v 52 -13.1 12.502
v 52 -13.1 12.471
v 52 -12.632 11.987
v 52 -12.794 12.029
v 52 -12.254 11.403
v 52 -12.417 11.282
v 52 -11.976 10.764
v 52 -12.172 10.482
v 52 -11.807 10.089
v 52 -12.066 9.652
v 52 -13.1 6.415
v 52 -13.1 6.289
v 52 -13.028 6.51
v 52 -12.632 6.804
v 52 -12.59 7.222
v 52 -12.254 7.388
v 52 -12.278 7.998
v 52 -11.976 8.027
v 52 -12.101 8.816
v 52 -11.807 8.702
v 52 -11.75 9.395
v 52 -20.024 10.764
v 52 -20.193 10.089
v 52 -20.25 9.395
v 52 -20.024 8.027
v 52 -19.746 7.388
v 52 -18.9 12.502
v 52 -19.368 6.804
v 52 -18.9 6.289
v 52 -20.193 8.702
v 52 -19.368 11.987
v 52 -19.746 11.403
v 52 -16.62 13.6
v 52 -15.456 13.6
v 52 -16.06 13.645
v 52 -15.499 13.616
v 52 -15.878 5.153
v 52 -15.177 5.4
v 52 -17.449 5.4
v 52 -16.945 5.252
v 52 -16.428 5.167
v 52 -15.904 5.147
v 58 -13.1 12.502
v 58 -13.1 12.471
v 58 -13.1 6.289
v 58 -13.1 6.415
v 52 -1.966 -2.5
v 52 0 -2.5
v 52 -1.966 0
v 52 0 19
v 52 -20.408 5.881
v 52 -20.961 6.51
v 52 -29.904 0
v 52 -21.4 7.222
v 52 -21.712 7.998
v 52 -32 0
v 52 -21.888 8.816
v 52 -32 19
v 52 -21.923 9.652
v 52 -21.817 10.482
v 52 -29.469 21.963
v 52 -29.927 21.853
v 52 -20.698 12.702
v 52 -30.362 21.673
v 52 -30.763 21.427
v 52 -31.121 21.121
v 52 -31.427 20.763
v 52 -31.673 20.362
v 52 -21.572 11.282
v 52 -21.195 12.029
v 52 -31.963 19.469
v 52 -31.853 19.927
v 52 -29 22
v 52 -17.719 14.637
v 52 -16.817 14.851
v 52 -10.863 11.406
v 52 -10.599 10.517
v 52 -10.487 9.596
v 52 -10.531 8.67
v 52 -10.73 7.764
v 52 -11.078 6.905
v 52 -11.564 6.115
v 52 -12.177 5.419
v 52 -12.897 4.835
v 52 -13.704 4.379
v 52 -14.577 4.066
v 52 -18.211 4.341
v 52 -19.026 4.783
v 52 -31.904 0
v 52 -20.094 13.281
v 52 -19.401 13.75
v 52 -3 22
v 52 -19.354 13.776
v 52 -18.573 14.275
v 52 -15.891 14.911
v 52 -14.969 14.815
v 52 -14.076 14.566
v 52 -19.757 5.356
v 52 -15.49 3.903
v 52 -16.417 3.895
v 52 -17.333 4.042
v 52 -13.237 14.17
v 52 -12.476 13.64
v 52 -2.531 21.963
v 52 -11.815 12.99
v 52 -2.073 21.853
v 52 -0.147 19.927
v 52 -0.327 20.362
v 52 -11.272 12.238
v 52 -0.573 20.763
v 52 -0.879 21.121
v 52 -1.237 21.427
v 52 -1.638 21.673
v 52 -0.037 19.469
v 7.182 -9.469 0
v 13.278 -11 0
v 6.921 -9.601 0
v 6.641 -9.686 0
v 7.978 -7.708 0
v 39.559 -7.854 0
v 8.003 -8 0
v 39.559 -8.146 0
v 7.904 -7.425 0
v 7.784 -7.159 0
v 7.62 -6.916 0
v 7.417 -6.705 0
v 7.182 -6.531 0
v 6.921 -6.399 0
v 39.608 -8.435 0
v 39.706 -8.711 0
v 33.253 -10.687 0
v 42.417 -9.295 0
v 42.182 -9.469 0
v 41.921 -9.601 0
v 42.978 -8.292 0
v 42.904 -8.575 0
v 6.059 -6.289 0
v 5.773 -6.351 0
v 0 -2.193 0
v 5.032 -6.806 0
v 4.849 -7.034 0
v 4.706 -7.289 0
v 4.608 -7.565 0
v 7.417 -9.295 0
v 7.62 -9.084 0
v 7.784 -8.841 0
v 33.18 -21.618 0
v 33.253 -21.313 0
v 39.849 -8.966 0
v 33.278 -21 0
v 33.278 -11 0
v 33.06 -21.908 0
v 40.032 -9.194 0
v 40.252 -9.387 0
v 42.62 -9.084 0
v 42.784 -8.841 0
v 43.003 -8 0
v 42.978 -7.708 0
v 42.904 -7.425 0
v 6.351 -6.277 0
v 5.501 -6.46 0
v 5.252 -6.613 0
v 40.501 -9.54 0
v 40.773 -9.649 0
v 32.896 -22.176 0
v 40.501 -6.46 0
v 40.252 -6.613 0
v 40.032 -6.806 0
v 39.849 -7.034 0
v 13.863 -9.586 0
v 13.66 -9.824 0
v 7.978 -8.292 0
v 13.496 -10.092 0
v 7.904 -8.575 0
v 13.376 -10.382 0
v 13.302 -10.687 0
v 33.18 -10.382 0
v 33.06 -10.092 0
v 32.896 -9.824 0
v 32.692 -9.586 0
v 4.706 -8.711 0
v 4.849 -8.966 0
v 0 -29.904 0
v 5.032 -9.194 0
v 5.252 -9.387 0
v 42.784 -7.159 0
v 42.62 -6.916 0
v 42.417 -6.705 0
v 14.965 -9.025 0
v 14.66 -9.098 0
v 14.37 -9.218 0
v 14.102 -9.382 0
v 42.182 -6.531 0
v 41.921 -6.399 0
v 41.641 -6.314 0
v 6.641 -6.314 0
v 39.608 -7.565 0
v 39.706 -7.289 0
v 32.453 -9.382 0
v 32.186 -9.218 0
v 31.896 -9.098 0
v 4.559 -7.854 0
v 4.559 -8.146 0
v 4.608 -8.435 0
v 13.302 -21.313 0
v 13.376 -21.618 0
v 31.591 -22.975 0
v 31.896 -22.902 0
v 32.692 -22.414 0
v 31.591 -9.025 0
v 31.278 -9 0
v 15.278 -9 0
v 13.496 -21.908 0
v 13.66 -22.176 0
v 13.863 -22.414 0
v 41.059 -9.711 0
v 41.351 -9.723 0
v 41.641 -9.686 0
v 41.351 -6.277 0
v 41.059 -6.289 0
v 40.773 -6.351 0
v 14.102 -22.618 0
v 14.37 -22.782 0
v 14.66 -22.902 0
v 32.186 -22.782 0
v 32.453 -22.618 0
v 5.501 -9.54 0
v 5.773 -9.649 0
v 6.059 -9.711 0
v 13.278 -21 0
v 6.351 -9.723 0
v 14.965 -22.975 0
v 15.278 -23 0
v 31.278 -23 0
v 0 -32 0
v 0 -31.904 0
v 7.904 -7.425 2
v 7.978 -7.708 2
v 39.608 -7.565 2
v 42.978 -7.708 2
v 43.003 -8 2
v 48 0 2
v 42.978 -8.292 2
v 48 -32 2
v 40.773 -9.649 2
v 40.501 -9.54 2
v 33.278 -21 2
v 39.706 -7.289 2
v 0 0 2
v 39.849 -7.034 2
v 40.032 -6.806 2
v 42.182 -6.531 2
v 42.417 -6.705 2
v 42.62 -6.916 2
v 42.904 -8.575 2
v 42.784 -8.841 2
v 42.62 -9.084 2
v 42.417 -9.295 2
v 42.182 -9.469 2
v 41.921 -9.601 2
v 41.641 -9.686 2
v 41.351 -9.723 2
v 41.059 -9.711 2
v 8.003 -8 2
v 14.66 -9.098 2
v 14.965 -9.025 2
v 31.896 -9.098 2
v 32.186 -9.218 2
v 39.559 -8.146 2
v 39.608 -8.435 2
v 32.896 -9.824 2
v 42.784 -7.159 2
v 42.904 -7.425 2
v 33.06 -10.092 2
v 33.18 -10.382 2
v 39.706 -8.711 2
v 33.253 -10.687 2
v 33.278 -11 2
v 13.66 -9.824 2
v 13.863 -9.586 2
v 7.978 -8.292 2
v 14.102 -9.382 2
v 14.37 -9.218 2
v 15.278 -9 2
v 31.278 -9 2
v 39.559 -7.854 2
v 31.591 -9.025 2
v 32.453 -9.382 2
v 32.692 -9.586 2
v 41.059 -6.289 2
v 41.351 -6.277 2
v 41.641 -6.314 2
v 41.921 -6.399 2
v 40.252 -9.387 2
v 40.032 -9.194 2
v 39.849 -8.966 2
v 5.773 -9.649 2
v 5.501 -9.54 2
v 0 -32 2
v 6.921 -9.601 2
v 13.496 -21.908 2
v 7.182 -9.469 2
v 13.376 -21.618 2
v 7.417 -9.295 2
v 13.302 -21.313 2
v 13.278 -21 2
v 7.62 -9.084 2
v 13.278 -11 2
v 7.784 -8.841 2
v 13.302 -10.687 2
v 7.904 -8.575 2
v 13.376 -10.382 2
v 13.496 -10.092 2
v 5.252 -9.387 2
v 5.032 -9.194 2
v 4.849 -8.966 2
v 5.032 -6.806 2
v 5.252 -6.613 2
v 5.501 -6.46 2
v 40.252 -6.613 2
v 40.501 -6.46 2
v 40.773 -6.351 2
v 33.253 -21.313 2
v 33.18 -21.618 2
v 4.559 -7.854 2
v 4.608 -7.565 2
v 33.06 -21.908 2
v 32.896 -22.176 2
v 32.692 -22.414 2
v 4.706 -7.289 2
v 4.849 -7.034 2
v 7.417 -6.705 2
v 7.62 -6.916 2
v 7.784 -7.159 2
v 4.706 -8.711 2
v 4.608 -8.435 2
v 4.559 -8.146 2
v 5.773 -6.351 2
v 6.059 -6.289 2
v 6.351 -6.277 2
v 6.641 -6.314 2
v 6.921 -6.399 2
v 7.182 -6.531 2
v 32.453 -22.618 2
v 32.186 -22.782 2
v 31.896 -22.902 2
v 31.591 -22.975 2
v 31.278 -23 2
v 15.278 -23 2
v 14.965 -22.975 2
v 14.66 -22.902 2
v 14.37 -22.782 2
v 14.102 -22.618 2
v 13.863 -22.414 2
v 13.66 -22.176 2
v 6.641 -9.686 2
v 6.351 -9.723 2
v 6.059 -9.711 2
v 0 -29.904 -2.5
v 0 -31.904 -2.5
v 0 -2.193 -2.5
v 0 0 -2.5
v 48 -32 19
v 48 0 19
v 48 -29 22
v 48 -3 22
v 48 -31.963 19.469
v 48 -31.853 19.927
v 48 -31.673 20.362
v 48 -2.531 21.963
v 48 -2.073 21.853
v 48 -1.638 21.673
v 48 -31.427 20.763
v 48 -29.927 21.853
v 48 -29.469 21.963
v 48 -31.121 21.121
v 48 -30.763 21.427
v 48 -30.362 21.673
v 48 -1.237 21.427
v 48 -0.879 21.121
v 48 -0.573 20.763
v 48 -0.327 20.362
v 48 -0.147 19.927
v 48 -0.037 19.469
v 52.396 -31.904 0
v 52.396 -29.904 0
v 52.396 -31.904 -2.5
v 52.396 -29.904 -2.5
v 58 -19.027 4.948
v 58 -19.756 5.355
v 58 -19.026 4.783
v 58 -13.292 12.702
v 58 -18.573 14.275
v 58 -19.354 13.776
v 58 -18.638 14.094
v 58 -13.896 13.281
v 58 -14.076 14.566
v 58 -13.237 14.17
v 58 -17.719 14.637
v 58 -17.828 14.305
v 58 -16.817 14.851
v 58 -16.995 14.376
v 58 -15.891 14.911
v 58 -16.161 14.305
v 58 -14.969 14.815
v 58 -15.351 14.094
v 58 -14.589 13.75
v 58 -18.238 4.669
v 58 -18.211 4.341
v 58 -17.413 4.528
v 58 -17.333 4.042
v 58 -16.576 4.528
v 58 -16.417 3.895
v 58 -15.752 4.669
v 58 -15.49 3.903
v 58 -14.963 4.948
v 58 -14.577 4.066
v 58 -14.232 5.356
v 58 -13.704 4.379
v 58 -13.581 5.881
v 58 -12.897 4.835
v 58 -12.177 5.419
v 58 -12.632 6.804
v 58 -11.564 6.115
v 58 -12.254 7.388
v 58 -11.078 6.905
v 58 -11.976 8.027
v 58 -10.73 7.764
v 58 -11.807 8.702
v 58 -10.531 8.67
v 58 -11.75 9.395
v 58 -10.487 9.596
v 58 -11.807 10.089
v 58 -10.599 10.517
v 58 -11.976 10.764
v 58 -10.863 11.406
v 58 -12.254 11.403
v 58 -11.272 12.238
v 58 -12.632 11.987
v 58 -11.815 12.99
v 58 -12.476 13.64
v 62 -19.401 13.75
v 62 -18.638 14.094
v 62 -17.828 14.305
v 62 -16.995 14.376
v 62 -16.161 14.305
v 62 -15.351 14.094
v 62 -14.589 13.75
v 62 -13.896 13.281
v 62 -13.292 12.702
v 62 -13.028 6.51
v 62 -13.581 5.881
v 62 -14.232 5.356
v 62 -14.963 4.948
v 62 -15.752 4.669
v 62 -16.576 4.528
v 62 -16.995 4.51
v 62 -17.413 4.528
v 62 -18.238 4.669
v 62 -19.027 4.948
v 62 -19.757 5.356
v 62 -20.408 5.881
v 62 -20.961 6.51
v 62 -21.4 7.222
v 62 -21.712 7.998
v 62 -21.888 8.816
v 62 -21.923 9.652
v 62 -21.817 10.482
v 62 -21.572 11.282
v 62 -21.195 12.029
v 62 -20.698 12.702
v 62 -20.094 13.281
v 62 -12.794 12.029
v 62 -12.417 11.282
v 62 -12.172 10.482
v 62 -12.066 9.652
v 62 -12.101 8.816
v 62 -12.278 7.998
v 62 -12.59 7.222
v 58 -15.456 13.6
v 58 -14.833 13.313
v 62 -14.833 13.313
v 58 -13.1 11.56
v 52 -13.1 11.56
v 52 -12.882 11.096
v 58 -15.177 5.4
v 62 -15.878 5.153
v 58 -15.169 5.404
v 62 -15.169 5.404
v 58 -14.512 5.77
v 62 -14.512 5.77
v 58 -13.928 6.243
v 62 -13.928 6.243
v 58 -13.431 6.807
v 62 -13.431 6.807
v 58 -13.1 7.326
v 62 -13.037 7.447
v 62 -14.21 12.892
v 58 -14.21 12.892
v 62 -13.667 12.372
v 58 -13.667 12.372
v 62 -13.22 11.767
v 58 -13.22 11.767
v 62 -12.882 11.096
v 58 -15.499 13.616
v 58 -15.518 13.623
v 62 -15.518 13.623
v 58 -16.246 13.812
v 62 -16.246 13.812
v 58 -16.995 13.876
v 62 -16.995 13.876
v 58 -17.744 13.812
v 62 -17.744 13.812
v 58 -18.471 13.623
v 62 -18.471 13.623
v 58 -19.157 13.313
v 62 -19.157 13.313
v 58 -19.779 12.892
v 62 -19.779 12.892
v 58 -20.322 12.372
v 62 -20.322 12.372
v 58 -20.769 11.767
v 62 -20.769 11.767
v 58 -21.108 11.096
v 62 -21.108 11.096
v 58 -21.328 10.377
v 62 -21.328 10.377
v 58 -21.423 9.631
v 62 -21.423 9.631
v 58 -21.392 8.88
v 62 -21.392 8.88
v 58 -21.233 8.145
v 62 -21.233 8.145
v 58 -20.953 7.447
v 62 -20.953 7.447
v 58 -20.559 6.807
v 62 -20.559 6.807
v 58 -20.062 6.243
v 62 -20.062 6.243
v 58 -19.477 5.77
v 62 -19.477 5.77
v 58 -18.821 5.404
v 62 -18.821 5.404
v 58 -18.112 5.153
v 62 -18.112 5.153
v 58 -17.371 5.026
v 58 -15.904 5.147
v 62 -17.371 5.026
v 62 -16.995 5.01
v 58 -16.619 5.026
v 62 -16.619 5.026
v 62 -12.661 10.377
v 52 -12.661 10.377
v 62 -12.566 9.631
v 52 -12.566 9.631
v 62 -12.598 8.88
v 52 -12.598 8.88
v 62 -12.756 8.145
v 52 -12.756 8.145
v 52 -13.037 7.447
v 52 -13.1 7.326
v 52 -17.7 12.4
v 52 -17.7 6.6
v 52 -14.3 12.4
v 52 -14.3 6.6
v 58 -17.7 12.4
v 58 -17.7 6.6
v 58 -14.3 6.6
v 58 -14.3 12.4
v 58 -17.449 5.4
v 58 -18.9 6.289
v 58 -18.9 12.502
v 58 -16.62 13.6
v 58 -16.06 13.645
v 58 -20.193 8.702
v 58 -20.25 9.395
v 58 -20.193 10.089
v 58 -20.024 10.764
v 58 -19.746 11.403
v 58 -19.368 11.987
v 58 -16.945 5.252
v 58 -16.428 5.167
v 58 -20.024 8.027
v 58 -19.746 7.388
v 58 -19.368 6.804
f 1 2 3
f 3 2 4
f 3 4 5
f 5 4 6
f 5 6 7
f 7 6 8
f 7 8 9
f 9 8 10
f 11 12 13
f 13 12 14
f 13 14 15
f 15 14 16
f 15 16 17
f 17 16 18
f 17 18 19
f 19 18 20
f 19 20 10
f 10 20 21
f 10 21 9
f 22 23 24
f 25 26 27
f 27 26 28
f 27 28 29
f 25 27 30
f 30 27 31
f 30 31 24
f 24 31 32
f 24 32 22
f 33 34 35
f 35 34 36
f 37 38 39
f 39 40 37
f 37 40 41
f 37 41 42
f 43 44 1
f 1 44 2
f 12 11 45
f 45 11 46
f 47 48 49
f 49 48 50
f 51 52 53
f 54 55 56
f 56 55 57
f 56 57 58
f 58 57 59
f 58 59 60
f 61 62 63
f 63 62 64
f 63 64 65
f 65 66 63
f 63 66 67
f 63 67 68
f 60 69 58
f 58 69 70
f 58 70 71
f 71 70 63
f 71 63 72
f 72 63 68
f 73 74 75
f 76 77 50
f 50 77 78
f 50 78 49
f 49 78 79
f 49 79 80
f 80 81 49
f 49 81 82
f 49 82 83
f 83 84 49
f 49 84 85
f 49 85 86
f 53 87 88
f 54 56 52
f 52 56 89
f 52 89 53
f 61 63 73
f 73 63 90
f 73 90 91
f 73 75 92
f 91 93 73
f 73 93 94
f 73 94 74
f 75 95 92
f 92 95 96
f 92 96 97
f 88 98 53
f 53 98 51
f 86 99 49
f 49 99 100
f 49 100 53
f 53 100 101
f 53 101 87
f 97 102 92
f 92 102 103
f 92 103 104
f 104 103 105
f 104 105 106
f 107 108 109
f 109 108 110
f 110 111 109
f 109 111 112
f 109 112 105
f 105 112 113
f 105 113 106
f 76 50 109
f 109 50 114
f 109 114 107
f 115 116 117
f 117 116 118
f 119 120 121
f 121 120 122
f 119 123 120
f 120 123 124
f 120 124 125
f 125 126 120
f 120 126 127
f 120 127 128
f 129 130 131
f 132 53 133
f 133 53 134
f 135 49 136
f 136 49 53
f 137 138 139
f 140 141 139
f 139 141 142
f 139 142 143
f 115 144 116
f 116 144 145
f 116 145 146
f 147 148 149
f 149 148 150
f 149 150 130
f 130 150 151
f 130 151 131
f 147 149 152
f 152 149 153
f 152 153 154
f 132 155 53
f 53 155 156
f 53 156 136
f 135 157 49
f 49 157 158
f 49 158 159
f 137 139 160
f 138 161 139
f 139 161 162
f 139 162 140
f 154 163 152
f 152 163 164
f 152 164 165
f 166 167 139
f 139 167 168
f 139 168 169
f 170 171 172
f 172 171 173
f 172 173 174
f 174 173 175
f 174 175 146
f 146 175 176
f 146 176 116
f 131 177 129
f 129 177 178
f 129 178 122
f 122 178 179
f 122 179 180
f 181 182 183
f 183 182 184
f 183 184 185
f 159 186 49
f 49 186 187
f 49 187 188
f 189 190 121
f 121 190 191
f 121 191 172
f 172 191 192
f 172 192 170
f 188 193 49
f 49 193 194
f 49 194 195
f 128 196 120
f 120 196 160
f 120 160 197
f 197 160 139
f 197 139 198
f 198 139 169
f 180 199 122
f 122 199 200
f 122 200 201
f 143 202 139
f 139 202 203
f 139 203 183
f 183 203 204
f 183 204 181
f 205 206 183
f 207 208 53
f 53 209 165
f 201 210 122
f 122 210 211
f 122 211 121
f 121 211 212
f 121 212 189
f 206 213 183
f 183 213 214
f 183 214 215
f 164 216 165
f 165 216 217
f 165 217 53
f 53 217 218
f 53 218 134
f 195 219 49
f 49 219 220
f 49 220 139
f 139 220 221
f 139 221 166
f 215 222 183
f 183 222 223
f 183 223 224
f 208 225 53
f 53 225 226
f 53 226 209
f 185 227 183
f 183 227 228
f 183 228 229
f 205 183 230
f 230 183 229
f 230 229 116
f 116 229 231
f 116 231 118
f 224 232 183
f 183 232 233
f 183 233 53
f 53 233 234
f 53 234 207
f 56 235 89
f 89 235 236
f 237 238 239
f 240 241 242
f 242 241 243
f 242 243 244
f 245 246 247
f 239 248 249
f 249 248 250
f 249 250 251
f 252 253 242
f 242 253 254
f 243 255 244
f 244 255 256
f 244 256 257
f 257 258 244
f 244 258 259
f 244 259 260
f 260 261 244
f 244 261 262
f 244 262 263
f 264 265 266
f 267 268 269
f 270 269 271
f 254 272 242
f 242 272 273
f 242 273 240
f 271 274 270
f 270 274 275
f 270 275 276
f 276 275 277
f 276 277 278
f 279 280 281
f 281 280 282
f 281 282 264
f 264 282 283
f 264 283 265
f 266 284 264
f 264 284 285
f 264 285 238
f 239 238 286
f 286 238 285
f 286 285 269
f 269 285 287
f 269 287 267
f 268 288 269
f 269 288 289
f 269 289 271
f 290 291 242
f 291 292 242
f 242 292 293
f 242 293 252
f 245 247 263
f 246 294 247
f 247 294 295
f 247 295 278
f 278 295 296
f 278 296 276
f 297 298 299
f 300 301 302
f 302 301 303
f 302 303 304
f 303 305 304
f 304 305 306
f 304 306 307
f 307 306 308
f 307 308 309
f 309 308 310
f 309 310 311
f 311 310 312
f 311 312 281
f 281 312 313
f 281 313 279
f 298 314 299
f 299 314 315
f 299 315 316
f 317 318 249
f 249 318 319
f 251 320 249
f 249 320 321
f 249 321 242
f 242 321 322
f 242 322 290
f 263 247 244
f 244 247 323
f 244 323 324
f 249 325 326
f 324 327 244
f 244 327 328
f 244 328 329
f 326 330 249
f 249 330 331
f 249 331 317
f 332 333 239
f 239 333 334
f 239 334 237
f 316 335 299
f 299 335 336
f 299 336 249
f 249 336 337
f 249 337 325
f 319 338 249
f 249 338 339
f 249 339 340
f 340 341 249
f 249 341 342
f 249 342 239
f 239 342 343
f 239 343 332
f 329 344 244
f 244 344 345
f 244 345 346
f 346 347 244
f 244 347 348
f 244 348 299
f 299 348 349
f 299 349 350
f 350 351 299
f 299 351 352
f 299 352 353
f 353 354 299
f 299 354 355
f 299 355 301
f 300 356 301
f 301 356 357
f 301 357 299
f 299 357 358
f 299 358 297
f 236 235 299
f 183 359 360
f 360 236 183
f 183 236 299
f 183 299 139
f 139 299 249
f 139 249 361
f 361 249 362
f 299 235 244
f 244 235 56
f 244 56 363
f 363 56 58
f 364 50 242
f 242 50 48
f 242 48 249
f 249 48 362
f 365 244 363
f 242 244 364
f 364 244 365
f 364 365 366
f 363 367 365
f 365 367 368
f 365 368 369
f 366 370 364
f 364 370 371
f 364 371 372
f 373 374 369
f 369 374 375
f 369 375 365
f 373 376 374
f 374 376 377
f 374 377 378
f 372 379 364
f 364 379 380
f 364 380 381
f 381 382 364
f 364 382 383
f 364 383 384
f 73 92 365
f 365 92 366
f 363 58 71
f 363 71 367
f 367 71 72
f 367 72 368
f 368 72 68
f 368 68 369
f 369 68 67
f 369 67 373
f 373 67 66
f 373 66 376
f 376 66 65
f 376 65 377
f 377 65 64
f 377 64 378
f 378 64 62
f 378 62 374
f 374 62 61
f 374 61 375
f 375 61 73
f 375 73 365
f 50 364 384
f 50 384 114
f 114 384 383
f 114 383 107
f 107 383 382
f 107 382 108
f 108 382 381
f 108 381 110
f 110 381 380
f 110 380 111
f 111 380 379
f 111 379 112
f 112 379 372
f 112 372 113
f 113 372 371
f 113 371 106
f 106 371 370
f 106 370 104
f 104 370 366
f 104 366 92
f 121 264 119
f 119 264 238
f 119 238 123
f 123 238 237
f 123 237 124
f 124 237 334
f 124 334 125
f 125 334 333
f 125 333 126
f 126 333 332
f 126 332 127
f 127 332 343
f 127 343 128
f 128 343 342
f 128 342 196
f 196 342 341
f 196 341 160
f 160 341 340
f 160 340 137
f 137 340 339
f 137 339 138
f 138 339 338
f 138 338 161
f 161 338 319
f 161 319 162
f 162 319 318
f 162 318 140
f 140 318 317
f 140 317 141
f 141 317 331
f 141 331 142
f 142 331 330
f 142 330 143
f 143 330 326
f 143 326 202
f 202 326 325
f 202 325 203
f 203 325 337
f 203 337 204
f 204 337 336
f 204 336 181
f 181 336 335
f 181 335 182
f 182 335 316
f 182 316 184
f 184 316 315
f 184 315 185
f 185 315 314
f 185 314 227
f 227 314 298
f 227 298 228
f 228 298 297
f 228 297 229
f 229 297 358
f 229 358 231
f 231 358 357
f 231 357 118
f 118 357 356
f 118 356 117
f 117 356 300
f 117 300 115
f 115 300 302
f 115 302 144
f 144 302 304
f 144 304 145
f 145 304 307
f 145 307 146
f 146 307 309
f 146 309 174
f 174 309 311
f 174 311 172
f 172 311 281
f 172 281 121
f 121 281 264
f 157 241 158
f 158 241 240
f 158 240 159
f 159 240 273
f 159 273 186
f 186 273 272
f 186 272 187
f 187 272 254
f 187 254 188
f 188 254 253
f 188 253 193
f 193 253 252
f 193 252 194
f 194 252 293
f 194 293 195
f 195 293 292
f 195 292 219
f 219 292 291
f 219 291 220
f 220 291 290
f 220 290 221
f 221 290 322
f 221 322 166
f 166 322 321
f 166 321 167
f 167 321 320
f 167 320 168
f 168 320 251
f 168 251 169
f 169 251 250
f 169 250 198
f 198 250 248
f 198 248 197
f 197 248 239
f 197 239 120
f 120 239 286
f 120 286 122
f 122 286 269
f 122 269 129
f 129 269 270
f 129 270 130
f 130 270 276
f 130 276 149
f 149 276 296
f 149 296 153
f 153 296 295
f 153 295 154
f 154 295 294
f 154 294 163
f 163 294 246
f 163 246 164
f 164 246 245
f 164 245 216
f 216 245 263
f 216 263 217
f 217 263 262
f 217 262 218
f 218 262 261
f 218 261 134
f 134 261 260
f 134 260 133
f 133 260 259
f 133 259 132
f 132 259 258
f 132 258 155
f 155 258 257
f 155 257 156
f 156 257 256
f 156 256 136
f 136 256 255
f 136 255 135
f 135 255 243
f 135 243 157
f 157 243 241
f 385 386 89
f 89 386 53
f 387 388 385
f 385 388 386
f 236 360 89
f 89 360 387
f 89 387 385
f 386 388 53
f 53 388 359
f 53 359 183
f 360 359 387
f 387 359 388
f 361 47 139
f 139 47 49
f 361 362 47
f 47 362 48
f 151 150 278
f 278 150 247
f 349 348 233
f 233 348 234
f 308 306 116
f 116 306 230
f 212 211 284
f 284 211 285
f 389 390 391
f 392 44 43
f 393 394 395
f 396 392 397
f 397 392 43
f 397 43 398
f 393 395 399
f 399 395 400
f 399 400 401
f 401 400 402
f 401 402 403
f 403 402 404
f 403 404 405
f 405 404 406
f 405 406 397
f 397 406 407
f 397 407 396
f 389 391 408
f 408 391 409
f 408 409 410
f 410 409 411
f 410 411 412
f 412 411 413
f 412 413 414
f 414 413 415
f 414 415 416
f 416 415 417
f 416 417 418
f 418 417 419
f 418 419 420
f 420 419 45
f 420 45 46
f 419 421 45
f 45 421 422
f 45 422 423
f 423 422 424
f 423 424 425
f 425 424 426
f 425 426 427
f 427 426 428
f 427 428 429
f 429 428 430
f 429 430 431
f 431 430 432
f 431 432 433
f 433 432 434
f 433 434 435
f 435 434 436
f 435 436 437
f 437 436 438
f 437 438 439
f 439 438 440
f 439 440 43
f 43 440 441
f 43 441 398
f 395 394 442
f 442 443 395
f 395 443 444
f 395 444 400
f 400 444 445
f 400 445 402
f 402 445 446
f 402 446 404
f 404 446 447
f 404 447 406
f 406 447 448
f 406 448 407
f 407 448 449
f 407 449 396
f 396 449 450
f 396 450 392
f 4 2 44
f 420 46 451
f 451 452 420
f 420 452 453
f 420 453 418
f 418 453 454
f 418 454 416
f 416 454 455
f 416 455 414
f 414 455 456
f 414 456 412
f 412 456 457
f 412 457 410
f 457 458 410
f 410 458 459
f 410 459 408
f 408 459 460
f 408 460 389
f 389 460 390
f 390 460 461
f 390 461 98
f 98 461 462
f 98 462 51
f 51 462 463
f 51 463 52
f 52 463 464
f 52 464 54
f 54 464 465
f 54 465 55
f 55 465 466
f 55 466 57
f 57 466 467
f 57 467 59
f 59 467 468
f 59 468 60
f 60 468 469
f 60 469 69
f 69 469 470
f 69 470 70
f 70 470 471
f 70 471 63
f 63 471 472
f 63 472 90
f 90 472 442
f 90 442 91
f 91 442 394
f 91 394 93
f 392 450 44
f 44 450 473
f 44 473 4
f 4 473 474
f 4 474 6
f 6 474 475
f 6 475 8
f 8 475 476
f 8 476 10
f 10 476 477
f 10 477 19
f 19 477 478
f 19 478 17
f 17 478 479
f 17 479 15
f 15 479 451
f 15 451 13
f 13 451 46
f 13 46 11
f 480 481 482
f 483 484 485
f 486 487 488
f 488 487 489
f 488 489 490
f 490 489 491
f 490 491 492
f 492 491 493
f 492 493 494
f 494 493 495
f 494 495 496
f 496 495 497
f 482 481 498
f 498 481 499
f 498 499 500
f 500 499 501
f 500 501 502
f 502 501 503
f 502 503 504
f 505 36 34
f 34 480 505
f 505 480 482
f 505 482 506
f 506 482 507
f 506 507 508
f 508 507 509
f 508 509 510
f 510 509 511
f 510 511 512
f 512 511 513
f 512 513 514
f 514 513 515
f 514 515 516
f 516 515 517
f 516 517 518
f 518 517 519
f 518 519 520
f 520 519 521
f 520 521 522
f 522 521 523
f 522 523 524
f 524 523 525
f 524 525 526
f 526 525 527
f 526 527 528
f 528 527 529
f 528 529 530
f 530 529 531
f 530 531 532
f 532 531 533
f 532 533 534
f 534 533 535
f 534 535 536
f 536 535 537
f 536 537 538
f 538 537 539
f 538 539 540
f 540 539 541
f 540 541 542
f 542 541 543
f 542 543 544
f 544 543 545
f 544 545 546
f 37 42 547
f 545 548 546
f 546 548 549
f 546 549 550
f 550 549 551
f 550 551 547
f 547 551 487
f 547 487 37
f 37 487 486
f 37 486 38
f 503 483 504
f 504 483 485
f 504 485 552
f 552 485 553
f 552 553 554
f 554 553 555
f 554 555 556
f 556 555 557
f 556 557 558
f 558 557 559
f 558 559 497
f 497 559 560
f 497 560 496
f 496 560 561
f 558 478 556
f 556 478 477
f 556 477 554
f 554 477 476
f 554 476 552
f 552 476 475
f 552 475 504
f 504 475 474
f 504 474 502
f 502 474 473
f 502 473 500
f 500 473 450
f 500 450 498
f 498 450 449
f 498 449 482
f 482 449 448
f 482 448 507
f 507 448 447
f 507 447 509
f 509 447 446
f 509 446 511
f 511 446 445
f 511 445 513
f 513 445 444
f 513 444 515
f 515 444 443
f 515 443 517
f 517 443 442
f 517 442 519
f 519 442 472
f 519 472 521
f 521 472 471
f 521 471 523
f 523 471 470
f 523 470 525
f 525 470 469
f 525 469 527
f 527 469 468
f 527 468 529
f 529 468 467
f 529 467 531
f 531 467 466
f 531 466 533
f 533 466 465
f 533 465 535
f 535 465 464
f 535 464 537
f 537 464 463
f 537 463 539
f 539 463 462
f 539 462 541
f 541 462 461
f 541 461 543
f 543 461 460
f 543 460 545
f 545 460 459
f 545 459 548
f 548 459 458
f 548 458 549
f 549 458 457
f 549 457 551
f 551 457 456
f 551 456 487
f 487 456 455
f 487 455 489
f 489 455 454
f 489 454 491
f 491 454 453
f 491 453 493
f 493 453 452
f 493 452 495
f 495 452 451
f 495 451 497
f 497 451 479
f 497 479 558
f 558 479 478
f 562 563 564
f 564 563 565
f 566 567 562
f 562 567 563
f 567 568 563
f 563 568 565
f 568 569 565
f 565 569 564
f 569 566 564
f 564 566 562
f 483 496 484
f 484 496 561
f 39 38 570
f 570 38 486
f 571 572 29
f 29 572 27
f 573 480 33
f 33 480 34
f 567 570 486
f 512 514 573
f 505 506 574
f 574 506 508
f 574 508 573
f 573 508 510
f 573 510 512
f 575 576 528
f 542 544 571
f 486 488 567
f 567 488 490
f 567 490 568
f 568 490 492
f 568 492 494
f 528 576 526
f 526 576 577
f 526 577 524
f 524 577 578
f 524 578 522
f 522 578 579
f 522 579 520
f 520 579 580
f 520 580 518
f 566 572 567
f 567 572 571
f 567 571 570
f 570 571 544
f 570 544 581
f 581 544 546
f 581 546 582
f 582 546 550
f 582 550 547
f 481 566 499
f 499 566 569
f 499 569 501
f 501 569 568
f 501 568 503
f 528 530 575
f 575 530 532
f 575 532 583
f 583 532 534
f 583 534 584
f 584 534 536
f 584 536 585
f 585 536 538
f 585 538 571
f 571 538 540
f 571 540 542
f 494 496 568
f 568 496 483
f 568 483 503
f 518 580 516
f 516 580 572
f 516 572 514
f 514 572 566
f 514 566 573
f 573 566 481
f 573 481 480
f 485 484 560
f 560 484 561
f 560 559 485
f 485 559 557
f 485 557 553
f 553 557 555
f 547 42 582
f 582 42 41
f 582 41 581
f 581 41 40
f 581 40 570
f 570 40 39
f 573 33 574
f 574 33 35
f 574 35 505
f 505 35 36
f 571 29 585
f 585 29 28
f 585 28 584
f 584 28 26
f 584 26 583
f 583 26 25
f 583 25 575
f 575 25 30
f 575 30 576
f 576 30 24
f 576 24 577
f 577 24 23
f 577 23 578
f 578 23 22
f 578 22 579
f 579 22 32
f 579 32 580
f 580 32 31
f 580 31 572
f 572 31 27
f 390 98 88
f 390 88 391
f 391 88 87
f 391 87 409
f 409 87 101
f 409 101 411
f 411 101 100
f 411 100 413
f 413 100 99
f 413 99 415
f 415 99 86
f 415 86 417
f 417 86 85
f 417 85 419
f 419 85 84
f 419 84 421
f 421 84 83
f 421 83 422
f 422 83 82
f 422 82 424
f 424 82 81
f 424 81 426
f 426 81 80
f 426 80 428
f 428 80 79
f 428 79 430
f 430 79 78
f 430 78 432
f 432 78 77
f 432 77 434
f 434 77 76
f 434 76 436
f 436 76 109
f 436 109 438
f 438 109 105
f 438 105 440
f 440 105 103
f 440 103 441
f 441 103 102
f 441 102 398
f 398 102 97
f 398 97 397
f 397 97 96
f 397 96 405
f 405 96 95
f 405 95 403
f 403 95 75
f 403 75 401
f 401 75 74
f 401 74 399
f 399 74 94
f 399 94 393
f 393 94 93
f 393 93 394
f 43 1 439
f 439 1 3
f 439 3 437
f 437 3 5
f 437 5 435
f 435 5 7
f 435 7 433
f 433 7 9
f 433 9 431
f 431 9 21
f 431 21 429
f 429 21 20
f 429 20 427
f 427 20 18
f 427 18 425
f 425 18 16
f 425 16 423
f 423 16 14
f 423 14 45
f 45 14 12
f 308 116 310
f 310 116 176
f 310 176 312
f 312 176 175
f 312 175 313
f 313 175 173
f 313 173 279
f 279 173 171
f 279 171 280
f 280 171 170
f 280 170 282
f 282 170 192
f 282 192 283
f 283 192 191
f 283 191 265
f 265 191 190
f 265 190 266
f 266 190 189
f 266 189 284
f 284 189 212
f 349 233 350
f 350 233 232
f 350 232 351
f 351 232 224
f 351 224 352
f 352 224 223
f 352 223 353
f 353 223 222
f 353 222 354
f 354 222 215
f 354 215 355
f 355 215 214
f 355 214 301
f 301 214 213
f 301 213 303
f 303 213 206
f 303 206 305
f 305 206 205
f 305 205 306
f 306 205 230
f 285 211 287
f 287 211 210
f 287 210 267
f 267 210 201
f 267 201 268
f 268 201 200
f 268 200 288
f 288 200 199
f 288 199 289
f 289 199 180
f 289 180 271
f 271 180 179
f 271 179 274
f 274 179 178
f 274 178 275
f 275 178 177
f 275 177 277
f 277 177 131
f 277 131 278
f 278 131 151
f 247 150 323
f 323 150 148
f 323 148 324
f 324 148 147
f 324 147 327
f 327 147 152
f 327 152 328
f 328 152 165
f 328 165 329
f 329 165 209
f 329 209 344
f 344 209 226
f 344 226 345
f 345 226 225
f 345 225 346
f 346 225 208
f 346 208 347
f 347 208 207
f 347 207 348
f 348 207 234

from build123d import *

# Parameters (mm, degrees)
SKETCH1_W           = 52
SKETCH1_H           = 32
BOSS_EXTRUDE1_DEPTH = 2
SKETCH2_W           = 4
SKETCH2_H           = 32
BOSS_EXTRUDE2_DEPTH = 20
FILLET1_R           = 3
SKETCH4_R           = 1.725
CUT_EXTRUDE2_DEPTH  = 2
SKETCH5_W           = 52.395546188
SKETCH5_H           = 2
BOSS_EXTRUDE3_DEPTH = 2.5
SKETCH6_W           = 20
SKETCH6_H           = 14
CUT_EXTRUDE3_DEPTH  = 2
SKETCH7_W           = 8.2
SKETCH7_H           = 5.8
SKETCH7_W_2         = 5.8
SKETCH7_H_2         = 3.4
BOSS_EXTRUDE4_DEPTH = 6
SKETCH10_R          = 4.93317494
SKETCH10_R_2        = 4.432714725
BOSS_EXTRUDE6_DEPTH = 10
SKETCH8_R           = 5.516570522
SKETCH8_R_2         = 4.25
BOSS_EXTRUDE5_DEPTH = 6
FILLET2_R           = 2


with BuildPart() as part:
    # Sketch1 → Boss-Extrude1 (new body)
    with BuildSketch(Plane.XY):
        with Locations((26, -16)):
            Rectangle(SKETCH1_W, SKETCH1_H)
    extrude(amount=BOSS_EXTRUDE1_DEPTH)

    # Sketch2 → Boss-Extrude2 (add)
    with BuildSketch(Plane(origin=(0, 0, 2), x_dir=(-1, 0, 0), z_dir=(0, 0, -1))):
        with Locations((-50, -16)):
            Rectangle(SKETCH2_W, SKETCH2_H)
    extrude(amount=-BOSS_EXTRUDE2_DEPTH)

    # Fillet1
    fillet1_edges = [part.edges().sort_by_distance(p)[0] for p in [
        (50, -32, 22),
        (50, 0, 22),
    ]]
    fillet(fillet1_edges, radius=FILLET1_R)

    # Sketch4 → Cut-Extrude2 (cut)
    with BuildSketch(Plane.XY.offset(2)):
        with Locations((41.277695867, -8)):
            Circle(SKETCH4_R)
        with Locations((6.277695867, -8)):
            Circle(SKETCH4_R)
    extrude(amount=-CUT_EXTRUDE2_DEPTH, mode=Mode.SUBTRACT)

    # Sketch5 → Boss-Extrude3 (add)
    with BuildSketch(Plane(origin=(0, 0, 0), x_dir=(-1, 0, 0), z_dir=(0, 0, -1))):
        with Locations((-26.197773094, -30.904147889)):
            Rectangle(SKETCH5_W, SKETCH5_H)
        Polygon((-52, -1.965960074), (0, -2.193486325), (0, 0), (-52, 0), align=None)
    extrude(amount=BOSS_EXTRUDE3_DEPTH)

    # Sketch6 → Cut-Extrude3 (cut)
    with BuildSketch(Plane.XY.offset(2)):
        with Locations((23.277695867, -16)):
            Rectangle(SKETCH6_W, SKETCH6_H)
    extrude(amount=-CUT_EXTRUDE3_DEPTH, mode=Mode.SUBTRACT)

    # Sketch7 → Boss-Extrude4 (add)
    with BuildSketch(Plane(origin=(52, 0, 0), x_dir=(0, 0, -1), z_dir=(1, 0, 0))):
        with Locations((-9.5, -16)):
            Rectangle(SKETCH7_W, SKETCH7_H)
        with Locations((-9.5, -16)):
            Rectangle(SKETCH7_W_2, SKETCH7_H_2, mode=Mode.SUBTRACT)
    extrude(amount=BOSS_EXTRUDE4_DEPTH)

    # Sketch10 → Boss-Extrude6 (add)
    with BuildSketch(Plane(origin=(52, 0, 0), x_dir=(0, 0, -1), z_dir=(1, 0, 0))):
        with Locations(Location((-9.443010808, -16.994711926, 0), (0, 0, 147.422084195))):
            Circle(SKETCH10_R)
        with Locations(Location((-9.443010808, -16.994711926, 0), (0, 0, 159.684920178))):
            Circle(SKETCH10_R_2, mode=Mode.SUBTRACT)
    extrude(amount=BOSS_EXTRUDE6_DEPTH)

    # Sketch8 → Boss-Extrude5 (add)
    with BuildSketch(Plane(origin=(52, 0, 0), x_dir=(0, 0, -1), z_dir=(1, 0, 0))):
        with Locations((-9.395508103, -16)):
            Circle(SKETCH8_R)
        with Locations((-9.395508103, -16)):
            Circle(SKETCH8_R_2, mode=Mode.SUBTRACT)
    extrude(amount=BOSS_EXTRUDE5_DEPTH)

    # Fillet2
    fillet2_edges = [part.edges().sort_by_distance(p)[0] for p in [
        (33.277695867, -9, 1),
        (33.277695867, -23, 1),
        (13.277695867, -23, 1),
        (13.277695867, -9, 1),
    ]]
    fillet(fillet2_edges, radius=FILLET2_R)


solid = part.part
